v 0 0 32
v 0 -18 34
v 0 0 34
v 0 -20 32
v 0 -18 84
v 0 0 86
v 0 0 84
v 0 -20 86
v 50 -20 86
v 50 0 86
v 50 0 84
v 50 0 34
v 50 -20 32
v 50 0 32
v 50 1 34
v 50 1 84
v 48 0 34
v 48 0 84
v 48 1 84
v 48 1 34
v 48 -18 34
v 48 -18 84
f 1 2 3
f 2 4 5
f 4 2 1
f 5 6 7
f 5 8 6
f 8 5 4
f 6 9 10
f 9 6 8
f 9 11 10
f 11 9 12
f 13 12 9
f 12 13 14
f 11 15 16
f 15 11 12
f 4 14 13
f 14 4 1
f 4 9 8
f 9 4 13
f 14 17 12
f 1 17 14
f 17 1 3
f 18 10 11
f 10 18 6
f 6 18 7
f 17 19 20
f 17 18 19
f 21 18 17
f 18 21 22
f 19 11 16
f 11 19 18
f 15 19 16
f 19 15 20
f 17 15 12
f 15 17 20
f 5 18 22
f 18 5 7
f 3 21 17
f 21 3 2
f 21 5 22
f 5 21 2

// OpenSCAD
difference() {
    union() {
        translate([0, -20, 32]) {
            cube([50, 20, 54]);
        }
        translate([48, -1, 34]) {
            cube([2, 2, 50]);
        }
    }

    translate([-2, -18, 34]) {
        cube([50, 19, 50]);
    }
    
    translate([20, -2, 39]) { 
        cube([20, 5, 40]);
    }
}
